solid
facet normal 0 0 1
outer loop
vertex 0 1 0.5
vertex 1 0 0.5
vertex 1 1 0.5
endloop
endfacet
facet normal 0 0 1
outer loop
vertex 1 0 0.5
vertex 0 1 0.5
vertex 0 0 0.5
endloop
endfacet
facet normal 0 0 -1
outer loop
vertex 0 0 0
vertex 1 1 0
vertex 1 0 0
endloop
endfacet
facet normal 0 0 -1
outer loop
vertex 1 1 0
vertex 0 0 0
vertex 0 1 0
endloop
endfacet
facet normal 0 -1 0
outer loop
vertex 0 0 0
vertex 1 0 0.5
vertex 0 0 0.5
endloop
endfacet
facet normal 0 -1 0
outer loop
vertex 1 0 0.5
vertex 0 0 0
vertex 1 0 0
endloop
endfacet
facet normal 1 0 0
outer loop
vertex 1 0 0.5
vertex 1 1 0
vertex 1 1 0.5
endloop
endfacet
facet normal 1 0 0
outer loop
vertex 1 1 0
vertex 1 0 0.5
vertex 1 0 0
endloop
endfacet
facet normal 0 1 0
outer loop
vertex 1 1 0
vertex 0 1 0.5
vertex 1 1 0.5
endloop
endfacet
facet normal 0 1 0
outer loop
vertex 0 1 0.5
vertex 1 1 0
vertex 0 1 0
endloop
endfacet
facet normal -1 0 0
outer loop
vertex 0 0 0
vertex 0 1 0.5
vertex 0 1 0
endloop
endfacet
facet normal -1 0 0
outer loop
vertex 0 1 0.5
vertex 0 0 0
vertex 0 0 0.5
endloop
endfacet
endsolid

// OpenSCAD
// Tetromino (square) for Stacks of Shapes
// by Slashee the Cow
cube([1,1,0.5]);
